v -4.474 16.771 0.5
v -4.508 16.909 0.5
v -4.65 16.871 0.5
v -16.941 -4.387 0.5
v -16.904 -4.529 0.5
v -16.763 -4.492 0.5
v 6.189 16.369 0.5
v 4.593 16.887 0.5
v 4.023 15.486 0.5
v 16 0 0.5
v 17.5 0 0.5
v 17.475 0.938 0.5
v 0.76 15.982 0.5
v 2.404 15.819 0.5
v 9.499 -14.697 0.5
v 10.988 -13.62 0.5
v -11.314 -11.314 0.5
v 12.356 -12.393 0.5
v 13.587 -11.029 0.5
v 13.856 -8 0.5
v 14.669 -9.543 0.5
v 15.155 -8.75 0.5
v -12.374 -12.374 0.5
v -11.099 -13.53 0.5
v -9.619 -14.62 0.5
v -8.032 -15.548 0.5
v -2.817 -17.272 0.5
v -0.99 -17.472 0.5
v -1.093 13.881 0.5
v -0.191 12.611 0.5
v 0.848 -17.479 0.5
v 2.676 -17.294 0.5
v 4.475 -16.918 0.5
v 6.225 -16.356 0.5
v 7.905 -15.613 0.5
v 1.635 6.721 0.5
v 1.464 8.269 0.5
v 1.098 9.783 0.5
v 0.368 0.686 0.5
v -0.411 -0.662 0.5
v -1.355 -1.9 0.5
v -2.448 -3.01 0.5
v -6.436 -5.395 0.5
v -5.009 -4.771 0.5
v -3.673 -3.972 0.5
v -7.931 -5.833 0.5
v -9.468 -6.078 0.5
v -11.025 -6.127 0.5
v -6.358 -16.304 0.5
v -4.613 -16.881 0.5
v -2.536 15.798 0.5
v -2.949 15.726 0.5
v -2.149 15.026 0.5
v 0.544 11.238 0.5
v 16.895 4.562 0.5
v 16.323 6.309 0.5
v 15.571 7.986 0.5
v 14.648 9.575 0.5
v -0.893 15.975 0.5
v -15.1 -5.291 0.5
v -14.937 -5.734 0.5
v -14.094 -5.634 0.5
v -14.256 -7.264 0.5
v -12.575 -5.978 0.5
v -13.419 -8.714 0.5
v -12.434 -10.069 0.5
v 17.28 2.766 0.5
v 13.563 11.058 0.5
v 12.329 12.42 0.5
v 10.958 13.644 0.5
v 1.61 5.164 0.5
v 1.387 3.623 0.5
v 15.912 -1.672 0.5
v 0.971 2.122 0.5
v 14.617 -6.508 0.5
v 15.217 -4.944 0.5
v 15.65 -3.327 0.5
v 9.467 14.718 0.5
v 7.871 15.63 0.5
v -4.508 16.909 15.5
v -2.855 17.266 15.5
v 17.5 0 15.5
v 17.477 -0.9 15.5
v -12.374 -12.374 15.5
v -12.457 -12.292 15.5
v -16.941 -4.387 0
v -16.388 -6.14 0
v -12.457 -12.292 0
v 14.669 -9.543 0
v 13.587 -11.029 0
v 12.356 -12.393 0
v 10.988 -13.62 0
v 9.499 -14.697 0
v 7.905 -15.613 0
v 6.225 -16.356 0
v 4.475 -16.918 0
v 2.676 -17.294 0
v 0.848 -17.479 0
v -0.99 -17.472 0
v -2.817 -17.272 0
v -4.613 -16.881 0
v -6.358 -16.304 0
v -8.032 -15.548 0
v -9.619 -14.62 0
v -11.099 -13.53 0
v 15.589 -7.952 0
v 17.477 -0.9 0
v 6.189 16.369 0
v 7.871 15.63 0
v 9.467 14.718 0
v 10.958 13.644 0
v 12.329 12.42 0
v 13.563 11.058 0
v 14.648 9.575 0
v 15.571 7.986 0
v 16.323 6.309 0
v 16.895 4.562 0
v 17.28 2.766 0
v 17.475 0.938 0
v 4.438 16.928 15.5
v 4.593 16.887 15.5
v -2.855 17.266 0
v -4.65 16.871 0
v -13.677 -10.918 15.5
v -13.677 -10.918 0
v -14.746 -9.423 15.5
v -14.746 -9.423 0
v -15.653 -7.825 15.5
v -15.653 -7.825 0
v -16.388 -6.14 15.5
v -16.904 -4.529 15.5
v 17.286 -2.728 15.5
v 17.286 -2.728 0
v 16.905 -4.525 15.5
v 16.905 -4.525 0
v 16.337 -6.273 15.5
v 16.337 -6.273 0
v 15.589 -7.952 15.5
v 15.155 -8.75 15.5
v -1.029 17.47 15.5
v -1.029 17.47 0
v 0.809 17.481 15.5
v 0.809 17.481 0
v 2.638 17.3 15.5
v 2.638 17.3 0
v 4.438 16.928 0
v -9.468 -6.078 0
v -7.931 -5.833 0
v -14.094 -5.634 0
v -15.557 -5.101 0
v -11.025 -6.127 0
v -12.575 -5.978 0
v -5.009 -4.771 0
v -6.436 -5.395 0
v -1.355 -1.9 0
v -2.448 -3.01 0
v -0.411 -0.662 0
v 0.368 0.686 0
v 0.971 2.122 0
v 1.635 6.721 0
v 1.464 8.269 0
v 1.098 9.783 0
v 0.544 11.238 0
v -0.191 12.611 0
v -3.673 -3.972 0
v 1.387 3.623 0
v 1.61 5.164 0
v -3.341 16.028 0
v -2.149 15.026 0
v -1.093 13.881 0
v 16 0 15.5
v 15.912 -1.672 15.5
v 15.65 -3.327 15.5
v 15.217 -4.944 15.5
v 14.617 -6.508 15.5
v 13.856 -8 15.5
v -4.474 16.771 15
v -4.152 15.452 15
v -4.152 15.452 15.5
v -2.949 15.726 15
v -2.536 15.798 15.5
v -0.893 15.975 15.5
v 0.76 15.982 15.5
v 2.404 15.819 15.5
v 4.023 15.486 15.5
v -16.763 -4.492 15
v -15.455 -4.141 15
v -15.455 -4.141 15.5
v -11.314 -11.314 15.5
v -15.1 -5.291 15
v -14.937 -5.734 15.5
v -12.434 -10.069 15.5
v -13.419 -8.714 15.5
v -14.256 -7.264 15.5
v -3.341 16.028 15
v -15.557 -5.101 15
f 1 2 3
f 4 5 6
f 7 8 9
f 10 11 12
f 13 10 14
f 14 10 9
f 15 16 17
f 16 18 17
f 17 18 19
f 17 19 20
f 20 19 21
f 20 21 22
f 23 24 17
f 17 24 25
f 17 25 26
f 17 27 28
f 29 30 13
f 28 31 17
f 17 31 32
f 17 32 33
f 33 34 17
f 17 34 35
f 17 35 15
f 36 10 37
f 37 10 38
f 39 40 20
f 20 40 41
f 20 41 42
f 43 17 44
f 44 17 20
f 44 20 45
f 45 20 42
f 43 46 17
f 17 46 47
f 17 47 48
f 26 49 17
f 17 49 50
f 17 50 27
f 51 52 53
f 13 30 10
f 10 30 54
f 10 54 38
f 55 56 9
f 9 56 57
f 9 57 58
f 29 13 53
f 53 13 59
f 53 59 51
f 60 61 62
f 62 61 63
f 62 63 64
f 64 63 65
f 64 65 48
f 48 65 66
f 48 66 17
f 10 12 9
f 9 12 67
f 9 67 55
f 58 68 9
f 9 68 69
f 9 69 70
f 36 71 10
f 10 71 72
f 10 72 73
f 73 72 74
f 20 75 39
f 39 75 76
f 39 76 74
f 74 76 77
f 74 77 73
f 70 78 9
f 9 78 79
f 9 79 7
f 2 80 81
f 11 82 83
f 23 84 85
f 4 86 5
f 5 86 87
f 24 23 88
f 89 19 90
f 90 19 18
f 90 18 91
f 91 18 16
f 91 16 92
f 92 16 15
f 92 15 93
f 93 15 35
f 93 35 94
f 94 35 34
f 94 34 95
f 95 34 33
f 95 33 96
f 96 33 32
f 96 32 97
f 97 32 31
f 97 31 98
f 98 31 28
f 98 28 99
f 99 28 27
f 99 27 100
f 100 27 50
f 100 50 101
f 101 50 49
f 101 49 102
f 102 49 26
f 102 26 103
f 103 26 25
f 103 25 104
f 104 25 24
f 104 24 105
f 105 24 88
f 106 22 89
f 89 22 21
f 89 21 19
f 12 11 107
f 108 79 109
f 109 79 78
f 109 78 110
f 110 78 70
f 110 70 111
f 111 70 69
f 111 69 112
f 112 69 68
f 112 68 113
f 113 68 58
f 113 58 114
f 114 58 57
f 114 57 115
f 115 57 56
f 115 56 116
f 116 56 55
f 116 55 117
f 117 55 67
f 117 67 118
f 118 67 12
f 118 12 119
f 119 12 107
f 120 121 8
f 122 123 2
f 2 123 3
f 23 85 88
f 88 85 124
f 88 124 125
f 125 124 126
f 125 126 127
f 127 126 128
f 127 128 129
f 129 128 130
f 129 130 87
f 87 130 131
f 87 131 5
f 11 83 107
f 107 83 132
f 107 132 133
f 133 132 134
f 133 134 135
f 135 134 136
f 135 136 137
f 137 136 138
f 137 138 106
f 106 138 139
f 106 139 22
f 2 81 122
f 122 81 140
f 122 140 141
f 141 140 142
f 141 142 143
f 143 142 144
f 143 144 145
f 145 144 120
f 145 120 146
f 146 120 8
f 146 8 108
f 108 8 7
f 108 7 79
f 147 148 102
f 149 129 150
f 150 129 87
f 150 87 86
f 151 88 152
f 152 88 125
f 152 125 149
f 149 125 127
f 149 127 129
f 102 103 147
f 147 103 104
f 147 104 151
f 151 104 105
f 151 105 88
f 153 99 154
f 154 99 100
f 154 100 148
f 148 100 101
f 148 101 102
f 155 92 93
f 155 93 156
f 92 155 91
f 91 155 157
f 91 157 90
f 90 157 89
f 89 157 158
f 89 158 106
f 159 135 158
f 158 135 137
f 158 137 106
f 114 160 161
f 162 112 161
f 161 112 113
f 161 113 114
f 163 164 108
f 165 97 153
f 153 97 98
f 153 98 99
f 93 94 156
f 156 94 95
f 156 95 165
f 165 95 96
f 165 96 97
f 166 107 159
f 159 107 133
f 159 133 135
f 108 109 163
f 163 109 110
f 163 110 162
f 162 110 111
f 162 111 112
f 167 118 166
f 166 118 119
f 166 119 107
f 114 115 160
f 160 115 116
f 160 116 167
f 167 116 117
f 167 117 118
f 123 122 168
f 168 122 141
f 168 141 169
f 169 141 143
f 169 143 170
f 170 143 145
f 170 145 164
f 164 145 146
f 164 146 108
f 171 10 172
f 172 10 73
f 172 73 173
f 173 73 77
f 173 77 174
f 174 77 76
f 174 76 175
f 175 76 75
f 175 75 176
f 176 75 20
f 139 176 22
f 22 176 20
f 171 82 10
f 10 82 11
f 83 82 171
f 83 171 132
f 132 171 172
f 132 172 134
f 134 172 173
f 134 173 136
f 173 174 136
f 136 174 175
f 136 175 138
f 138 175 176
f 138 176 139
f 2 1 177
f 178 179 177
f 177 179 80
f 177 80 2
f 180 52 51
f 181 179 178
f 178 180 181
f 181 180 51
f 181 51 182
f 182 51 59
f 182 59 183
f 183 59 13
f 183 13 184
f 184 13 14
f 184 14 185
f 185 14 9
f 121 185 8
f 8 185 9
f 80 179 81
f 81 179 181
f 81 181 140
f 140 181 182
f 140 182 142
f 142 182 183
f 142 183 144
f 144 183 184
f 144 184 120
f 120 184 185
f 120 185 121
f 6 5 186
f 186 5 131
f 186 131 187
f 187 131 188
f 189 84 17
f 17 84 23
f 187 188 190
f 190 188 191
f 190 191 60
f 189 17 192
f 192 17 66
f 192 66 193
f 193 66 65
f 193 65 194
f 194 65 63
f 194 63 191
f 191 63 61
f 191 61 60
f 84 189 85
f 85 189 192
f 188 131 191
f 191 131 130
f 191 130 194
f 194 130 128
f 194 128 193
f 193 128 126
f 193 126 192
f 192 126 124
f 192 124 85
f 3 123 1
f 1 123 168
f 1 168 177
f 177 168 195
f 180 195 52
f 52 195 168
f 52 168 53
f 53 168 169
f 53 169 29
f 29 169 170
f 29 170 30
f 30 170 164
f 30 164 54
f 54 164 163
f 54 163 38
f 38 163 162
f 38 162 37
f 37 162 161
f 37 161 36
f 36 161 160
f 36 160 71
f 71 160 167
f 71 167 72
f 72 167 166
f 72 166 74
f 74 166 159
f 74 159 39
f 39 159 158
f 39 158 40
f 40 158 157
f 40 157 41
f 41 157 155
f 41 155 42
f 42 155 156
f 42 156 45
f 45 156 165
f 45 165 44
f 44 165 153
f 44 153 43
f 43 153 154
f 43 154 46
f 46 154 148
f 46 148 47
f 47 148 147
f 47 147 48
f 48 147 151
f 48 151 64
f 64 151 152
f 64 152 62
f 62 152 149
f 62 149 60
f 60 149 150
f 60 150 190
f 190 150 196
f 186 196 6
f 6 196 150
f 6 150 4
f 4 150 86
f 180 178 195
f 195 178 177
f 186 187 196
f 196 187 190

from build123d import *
from build123d.topology import SkipClean

# Parameters (mm, degrees)
SKETCH1_R           = 17.5
BOSS_EXTRUDE1_DEPTH = 0.5
BOSS_EXTRUDE2_DEPTH = 15
SKETCH3_R           = 12.279415491
CUT_EXTRUDE1_DEPTH  = 15


with BuildPart() as part:
    # Sketch1 → Boss-Extrude1 (new body)
    with BuildSketch(Plane.XY):
        Circle(SKETCH1_R)
    extrude(amount=BOSS_EXTRUDE1_DEPTH)

    # Sketch2 → Boss-Extrude2 (add)
    with SkipClean():  # the faces are left unmerged after this step: merging them gives an invalid solid
        with BuildSketch(Plane.XY.offset(0.5)):
            with BuildLine():
                ThreePointArc((15.155444566, -8.75), (16.90370196, -4.529333289), (17.5, 0))
                Line((17.5, 0), (16, 0))
                ThreePointArc((16, 0), (15.454813221, -4.141104722), (13.856406461, -8))
                Line((13.856406461, -8), (15.155444566, -8.75))
            make_face()
            with BuildLine():
                ThreePointArc((4.592982123, 16.886518742), (0.043911409, 17.499944908), (-4.508180458, 16.909355664))
                Line((-4.508180458, 16.909355664), (-4.152362122, 15.452168884))
                ThreePointArc((-4.152362122, 15.452168884), (-0.066810406, 16.000224085), (4.023175675, 15.486306593))
                Line((4.023175675, 15.486306593), (4.592982123, 16.886518742))
            make_face()
            with BuildLine():
                ThreePointArc((-15.454813221, -4.141104722), (-13.856406461, -8), (-11.313708499, -11.313708499))
                Line((-11.313708499, -11.313708499), (-12.374368671, -12.374368671))
                ThreePointArc((-12.374368671, -12.374368671), (-15.155444566, -8.75), (-16.90370196, -4.529333289))
                Line((-16.90370196, -4.529333289), (-15.454813221, -4.141104722))
            make_face()
        extrude(amount=BOSS_EXTRUDE2_DEPTH)

    # Sketch3 → Cut-Extrude1 (cut)
    with SkipClean():  # the faces are left unmerged after this step: merging them gives an invalid solid
        with BuildSketch(Plane(origin=(0, 0, 0), x_dir=(-1, 0, 0), z_dir=(0, 0, -1))):
            with Locations((10.630442789, 6.146359158)):
                Circle(SKETCH3_R)
        extrude(amount=-CUT_EXTRUDE1_DEPTH, mode=Mode.SUBTRACT)


solid = part.part
